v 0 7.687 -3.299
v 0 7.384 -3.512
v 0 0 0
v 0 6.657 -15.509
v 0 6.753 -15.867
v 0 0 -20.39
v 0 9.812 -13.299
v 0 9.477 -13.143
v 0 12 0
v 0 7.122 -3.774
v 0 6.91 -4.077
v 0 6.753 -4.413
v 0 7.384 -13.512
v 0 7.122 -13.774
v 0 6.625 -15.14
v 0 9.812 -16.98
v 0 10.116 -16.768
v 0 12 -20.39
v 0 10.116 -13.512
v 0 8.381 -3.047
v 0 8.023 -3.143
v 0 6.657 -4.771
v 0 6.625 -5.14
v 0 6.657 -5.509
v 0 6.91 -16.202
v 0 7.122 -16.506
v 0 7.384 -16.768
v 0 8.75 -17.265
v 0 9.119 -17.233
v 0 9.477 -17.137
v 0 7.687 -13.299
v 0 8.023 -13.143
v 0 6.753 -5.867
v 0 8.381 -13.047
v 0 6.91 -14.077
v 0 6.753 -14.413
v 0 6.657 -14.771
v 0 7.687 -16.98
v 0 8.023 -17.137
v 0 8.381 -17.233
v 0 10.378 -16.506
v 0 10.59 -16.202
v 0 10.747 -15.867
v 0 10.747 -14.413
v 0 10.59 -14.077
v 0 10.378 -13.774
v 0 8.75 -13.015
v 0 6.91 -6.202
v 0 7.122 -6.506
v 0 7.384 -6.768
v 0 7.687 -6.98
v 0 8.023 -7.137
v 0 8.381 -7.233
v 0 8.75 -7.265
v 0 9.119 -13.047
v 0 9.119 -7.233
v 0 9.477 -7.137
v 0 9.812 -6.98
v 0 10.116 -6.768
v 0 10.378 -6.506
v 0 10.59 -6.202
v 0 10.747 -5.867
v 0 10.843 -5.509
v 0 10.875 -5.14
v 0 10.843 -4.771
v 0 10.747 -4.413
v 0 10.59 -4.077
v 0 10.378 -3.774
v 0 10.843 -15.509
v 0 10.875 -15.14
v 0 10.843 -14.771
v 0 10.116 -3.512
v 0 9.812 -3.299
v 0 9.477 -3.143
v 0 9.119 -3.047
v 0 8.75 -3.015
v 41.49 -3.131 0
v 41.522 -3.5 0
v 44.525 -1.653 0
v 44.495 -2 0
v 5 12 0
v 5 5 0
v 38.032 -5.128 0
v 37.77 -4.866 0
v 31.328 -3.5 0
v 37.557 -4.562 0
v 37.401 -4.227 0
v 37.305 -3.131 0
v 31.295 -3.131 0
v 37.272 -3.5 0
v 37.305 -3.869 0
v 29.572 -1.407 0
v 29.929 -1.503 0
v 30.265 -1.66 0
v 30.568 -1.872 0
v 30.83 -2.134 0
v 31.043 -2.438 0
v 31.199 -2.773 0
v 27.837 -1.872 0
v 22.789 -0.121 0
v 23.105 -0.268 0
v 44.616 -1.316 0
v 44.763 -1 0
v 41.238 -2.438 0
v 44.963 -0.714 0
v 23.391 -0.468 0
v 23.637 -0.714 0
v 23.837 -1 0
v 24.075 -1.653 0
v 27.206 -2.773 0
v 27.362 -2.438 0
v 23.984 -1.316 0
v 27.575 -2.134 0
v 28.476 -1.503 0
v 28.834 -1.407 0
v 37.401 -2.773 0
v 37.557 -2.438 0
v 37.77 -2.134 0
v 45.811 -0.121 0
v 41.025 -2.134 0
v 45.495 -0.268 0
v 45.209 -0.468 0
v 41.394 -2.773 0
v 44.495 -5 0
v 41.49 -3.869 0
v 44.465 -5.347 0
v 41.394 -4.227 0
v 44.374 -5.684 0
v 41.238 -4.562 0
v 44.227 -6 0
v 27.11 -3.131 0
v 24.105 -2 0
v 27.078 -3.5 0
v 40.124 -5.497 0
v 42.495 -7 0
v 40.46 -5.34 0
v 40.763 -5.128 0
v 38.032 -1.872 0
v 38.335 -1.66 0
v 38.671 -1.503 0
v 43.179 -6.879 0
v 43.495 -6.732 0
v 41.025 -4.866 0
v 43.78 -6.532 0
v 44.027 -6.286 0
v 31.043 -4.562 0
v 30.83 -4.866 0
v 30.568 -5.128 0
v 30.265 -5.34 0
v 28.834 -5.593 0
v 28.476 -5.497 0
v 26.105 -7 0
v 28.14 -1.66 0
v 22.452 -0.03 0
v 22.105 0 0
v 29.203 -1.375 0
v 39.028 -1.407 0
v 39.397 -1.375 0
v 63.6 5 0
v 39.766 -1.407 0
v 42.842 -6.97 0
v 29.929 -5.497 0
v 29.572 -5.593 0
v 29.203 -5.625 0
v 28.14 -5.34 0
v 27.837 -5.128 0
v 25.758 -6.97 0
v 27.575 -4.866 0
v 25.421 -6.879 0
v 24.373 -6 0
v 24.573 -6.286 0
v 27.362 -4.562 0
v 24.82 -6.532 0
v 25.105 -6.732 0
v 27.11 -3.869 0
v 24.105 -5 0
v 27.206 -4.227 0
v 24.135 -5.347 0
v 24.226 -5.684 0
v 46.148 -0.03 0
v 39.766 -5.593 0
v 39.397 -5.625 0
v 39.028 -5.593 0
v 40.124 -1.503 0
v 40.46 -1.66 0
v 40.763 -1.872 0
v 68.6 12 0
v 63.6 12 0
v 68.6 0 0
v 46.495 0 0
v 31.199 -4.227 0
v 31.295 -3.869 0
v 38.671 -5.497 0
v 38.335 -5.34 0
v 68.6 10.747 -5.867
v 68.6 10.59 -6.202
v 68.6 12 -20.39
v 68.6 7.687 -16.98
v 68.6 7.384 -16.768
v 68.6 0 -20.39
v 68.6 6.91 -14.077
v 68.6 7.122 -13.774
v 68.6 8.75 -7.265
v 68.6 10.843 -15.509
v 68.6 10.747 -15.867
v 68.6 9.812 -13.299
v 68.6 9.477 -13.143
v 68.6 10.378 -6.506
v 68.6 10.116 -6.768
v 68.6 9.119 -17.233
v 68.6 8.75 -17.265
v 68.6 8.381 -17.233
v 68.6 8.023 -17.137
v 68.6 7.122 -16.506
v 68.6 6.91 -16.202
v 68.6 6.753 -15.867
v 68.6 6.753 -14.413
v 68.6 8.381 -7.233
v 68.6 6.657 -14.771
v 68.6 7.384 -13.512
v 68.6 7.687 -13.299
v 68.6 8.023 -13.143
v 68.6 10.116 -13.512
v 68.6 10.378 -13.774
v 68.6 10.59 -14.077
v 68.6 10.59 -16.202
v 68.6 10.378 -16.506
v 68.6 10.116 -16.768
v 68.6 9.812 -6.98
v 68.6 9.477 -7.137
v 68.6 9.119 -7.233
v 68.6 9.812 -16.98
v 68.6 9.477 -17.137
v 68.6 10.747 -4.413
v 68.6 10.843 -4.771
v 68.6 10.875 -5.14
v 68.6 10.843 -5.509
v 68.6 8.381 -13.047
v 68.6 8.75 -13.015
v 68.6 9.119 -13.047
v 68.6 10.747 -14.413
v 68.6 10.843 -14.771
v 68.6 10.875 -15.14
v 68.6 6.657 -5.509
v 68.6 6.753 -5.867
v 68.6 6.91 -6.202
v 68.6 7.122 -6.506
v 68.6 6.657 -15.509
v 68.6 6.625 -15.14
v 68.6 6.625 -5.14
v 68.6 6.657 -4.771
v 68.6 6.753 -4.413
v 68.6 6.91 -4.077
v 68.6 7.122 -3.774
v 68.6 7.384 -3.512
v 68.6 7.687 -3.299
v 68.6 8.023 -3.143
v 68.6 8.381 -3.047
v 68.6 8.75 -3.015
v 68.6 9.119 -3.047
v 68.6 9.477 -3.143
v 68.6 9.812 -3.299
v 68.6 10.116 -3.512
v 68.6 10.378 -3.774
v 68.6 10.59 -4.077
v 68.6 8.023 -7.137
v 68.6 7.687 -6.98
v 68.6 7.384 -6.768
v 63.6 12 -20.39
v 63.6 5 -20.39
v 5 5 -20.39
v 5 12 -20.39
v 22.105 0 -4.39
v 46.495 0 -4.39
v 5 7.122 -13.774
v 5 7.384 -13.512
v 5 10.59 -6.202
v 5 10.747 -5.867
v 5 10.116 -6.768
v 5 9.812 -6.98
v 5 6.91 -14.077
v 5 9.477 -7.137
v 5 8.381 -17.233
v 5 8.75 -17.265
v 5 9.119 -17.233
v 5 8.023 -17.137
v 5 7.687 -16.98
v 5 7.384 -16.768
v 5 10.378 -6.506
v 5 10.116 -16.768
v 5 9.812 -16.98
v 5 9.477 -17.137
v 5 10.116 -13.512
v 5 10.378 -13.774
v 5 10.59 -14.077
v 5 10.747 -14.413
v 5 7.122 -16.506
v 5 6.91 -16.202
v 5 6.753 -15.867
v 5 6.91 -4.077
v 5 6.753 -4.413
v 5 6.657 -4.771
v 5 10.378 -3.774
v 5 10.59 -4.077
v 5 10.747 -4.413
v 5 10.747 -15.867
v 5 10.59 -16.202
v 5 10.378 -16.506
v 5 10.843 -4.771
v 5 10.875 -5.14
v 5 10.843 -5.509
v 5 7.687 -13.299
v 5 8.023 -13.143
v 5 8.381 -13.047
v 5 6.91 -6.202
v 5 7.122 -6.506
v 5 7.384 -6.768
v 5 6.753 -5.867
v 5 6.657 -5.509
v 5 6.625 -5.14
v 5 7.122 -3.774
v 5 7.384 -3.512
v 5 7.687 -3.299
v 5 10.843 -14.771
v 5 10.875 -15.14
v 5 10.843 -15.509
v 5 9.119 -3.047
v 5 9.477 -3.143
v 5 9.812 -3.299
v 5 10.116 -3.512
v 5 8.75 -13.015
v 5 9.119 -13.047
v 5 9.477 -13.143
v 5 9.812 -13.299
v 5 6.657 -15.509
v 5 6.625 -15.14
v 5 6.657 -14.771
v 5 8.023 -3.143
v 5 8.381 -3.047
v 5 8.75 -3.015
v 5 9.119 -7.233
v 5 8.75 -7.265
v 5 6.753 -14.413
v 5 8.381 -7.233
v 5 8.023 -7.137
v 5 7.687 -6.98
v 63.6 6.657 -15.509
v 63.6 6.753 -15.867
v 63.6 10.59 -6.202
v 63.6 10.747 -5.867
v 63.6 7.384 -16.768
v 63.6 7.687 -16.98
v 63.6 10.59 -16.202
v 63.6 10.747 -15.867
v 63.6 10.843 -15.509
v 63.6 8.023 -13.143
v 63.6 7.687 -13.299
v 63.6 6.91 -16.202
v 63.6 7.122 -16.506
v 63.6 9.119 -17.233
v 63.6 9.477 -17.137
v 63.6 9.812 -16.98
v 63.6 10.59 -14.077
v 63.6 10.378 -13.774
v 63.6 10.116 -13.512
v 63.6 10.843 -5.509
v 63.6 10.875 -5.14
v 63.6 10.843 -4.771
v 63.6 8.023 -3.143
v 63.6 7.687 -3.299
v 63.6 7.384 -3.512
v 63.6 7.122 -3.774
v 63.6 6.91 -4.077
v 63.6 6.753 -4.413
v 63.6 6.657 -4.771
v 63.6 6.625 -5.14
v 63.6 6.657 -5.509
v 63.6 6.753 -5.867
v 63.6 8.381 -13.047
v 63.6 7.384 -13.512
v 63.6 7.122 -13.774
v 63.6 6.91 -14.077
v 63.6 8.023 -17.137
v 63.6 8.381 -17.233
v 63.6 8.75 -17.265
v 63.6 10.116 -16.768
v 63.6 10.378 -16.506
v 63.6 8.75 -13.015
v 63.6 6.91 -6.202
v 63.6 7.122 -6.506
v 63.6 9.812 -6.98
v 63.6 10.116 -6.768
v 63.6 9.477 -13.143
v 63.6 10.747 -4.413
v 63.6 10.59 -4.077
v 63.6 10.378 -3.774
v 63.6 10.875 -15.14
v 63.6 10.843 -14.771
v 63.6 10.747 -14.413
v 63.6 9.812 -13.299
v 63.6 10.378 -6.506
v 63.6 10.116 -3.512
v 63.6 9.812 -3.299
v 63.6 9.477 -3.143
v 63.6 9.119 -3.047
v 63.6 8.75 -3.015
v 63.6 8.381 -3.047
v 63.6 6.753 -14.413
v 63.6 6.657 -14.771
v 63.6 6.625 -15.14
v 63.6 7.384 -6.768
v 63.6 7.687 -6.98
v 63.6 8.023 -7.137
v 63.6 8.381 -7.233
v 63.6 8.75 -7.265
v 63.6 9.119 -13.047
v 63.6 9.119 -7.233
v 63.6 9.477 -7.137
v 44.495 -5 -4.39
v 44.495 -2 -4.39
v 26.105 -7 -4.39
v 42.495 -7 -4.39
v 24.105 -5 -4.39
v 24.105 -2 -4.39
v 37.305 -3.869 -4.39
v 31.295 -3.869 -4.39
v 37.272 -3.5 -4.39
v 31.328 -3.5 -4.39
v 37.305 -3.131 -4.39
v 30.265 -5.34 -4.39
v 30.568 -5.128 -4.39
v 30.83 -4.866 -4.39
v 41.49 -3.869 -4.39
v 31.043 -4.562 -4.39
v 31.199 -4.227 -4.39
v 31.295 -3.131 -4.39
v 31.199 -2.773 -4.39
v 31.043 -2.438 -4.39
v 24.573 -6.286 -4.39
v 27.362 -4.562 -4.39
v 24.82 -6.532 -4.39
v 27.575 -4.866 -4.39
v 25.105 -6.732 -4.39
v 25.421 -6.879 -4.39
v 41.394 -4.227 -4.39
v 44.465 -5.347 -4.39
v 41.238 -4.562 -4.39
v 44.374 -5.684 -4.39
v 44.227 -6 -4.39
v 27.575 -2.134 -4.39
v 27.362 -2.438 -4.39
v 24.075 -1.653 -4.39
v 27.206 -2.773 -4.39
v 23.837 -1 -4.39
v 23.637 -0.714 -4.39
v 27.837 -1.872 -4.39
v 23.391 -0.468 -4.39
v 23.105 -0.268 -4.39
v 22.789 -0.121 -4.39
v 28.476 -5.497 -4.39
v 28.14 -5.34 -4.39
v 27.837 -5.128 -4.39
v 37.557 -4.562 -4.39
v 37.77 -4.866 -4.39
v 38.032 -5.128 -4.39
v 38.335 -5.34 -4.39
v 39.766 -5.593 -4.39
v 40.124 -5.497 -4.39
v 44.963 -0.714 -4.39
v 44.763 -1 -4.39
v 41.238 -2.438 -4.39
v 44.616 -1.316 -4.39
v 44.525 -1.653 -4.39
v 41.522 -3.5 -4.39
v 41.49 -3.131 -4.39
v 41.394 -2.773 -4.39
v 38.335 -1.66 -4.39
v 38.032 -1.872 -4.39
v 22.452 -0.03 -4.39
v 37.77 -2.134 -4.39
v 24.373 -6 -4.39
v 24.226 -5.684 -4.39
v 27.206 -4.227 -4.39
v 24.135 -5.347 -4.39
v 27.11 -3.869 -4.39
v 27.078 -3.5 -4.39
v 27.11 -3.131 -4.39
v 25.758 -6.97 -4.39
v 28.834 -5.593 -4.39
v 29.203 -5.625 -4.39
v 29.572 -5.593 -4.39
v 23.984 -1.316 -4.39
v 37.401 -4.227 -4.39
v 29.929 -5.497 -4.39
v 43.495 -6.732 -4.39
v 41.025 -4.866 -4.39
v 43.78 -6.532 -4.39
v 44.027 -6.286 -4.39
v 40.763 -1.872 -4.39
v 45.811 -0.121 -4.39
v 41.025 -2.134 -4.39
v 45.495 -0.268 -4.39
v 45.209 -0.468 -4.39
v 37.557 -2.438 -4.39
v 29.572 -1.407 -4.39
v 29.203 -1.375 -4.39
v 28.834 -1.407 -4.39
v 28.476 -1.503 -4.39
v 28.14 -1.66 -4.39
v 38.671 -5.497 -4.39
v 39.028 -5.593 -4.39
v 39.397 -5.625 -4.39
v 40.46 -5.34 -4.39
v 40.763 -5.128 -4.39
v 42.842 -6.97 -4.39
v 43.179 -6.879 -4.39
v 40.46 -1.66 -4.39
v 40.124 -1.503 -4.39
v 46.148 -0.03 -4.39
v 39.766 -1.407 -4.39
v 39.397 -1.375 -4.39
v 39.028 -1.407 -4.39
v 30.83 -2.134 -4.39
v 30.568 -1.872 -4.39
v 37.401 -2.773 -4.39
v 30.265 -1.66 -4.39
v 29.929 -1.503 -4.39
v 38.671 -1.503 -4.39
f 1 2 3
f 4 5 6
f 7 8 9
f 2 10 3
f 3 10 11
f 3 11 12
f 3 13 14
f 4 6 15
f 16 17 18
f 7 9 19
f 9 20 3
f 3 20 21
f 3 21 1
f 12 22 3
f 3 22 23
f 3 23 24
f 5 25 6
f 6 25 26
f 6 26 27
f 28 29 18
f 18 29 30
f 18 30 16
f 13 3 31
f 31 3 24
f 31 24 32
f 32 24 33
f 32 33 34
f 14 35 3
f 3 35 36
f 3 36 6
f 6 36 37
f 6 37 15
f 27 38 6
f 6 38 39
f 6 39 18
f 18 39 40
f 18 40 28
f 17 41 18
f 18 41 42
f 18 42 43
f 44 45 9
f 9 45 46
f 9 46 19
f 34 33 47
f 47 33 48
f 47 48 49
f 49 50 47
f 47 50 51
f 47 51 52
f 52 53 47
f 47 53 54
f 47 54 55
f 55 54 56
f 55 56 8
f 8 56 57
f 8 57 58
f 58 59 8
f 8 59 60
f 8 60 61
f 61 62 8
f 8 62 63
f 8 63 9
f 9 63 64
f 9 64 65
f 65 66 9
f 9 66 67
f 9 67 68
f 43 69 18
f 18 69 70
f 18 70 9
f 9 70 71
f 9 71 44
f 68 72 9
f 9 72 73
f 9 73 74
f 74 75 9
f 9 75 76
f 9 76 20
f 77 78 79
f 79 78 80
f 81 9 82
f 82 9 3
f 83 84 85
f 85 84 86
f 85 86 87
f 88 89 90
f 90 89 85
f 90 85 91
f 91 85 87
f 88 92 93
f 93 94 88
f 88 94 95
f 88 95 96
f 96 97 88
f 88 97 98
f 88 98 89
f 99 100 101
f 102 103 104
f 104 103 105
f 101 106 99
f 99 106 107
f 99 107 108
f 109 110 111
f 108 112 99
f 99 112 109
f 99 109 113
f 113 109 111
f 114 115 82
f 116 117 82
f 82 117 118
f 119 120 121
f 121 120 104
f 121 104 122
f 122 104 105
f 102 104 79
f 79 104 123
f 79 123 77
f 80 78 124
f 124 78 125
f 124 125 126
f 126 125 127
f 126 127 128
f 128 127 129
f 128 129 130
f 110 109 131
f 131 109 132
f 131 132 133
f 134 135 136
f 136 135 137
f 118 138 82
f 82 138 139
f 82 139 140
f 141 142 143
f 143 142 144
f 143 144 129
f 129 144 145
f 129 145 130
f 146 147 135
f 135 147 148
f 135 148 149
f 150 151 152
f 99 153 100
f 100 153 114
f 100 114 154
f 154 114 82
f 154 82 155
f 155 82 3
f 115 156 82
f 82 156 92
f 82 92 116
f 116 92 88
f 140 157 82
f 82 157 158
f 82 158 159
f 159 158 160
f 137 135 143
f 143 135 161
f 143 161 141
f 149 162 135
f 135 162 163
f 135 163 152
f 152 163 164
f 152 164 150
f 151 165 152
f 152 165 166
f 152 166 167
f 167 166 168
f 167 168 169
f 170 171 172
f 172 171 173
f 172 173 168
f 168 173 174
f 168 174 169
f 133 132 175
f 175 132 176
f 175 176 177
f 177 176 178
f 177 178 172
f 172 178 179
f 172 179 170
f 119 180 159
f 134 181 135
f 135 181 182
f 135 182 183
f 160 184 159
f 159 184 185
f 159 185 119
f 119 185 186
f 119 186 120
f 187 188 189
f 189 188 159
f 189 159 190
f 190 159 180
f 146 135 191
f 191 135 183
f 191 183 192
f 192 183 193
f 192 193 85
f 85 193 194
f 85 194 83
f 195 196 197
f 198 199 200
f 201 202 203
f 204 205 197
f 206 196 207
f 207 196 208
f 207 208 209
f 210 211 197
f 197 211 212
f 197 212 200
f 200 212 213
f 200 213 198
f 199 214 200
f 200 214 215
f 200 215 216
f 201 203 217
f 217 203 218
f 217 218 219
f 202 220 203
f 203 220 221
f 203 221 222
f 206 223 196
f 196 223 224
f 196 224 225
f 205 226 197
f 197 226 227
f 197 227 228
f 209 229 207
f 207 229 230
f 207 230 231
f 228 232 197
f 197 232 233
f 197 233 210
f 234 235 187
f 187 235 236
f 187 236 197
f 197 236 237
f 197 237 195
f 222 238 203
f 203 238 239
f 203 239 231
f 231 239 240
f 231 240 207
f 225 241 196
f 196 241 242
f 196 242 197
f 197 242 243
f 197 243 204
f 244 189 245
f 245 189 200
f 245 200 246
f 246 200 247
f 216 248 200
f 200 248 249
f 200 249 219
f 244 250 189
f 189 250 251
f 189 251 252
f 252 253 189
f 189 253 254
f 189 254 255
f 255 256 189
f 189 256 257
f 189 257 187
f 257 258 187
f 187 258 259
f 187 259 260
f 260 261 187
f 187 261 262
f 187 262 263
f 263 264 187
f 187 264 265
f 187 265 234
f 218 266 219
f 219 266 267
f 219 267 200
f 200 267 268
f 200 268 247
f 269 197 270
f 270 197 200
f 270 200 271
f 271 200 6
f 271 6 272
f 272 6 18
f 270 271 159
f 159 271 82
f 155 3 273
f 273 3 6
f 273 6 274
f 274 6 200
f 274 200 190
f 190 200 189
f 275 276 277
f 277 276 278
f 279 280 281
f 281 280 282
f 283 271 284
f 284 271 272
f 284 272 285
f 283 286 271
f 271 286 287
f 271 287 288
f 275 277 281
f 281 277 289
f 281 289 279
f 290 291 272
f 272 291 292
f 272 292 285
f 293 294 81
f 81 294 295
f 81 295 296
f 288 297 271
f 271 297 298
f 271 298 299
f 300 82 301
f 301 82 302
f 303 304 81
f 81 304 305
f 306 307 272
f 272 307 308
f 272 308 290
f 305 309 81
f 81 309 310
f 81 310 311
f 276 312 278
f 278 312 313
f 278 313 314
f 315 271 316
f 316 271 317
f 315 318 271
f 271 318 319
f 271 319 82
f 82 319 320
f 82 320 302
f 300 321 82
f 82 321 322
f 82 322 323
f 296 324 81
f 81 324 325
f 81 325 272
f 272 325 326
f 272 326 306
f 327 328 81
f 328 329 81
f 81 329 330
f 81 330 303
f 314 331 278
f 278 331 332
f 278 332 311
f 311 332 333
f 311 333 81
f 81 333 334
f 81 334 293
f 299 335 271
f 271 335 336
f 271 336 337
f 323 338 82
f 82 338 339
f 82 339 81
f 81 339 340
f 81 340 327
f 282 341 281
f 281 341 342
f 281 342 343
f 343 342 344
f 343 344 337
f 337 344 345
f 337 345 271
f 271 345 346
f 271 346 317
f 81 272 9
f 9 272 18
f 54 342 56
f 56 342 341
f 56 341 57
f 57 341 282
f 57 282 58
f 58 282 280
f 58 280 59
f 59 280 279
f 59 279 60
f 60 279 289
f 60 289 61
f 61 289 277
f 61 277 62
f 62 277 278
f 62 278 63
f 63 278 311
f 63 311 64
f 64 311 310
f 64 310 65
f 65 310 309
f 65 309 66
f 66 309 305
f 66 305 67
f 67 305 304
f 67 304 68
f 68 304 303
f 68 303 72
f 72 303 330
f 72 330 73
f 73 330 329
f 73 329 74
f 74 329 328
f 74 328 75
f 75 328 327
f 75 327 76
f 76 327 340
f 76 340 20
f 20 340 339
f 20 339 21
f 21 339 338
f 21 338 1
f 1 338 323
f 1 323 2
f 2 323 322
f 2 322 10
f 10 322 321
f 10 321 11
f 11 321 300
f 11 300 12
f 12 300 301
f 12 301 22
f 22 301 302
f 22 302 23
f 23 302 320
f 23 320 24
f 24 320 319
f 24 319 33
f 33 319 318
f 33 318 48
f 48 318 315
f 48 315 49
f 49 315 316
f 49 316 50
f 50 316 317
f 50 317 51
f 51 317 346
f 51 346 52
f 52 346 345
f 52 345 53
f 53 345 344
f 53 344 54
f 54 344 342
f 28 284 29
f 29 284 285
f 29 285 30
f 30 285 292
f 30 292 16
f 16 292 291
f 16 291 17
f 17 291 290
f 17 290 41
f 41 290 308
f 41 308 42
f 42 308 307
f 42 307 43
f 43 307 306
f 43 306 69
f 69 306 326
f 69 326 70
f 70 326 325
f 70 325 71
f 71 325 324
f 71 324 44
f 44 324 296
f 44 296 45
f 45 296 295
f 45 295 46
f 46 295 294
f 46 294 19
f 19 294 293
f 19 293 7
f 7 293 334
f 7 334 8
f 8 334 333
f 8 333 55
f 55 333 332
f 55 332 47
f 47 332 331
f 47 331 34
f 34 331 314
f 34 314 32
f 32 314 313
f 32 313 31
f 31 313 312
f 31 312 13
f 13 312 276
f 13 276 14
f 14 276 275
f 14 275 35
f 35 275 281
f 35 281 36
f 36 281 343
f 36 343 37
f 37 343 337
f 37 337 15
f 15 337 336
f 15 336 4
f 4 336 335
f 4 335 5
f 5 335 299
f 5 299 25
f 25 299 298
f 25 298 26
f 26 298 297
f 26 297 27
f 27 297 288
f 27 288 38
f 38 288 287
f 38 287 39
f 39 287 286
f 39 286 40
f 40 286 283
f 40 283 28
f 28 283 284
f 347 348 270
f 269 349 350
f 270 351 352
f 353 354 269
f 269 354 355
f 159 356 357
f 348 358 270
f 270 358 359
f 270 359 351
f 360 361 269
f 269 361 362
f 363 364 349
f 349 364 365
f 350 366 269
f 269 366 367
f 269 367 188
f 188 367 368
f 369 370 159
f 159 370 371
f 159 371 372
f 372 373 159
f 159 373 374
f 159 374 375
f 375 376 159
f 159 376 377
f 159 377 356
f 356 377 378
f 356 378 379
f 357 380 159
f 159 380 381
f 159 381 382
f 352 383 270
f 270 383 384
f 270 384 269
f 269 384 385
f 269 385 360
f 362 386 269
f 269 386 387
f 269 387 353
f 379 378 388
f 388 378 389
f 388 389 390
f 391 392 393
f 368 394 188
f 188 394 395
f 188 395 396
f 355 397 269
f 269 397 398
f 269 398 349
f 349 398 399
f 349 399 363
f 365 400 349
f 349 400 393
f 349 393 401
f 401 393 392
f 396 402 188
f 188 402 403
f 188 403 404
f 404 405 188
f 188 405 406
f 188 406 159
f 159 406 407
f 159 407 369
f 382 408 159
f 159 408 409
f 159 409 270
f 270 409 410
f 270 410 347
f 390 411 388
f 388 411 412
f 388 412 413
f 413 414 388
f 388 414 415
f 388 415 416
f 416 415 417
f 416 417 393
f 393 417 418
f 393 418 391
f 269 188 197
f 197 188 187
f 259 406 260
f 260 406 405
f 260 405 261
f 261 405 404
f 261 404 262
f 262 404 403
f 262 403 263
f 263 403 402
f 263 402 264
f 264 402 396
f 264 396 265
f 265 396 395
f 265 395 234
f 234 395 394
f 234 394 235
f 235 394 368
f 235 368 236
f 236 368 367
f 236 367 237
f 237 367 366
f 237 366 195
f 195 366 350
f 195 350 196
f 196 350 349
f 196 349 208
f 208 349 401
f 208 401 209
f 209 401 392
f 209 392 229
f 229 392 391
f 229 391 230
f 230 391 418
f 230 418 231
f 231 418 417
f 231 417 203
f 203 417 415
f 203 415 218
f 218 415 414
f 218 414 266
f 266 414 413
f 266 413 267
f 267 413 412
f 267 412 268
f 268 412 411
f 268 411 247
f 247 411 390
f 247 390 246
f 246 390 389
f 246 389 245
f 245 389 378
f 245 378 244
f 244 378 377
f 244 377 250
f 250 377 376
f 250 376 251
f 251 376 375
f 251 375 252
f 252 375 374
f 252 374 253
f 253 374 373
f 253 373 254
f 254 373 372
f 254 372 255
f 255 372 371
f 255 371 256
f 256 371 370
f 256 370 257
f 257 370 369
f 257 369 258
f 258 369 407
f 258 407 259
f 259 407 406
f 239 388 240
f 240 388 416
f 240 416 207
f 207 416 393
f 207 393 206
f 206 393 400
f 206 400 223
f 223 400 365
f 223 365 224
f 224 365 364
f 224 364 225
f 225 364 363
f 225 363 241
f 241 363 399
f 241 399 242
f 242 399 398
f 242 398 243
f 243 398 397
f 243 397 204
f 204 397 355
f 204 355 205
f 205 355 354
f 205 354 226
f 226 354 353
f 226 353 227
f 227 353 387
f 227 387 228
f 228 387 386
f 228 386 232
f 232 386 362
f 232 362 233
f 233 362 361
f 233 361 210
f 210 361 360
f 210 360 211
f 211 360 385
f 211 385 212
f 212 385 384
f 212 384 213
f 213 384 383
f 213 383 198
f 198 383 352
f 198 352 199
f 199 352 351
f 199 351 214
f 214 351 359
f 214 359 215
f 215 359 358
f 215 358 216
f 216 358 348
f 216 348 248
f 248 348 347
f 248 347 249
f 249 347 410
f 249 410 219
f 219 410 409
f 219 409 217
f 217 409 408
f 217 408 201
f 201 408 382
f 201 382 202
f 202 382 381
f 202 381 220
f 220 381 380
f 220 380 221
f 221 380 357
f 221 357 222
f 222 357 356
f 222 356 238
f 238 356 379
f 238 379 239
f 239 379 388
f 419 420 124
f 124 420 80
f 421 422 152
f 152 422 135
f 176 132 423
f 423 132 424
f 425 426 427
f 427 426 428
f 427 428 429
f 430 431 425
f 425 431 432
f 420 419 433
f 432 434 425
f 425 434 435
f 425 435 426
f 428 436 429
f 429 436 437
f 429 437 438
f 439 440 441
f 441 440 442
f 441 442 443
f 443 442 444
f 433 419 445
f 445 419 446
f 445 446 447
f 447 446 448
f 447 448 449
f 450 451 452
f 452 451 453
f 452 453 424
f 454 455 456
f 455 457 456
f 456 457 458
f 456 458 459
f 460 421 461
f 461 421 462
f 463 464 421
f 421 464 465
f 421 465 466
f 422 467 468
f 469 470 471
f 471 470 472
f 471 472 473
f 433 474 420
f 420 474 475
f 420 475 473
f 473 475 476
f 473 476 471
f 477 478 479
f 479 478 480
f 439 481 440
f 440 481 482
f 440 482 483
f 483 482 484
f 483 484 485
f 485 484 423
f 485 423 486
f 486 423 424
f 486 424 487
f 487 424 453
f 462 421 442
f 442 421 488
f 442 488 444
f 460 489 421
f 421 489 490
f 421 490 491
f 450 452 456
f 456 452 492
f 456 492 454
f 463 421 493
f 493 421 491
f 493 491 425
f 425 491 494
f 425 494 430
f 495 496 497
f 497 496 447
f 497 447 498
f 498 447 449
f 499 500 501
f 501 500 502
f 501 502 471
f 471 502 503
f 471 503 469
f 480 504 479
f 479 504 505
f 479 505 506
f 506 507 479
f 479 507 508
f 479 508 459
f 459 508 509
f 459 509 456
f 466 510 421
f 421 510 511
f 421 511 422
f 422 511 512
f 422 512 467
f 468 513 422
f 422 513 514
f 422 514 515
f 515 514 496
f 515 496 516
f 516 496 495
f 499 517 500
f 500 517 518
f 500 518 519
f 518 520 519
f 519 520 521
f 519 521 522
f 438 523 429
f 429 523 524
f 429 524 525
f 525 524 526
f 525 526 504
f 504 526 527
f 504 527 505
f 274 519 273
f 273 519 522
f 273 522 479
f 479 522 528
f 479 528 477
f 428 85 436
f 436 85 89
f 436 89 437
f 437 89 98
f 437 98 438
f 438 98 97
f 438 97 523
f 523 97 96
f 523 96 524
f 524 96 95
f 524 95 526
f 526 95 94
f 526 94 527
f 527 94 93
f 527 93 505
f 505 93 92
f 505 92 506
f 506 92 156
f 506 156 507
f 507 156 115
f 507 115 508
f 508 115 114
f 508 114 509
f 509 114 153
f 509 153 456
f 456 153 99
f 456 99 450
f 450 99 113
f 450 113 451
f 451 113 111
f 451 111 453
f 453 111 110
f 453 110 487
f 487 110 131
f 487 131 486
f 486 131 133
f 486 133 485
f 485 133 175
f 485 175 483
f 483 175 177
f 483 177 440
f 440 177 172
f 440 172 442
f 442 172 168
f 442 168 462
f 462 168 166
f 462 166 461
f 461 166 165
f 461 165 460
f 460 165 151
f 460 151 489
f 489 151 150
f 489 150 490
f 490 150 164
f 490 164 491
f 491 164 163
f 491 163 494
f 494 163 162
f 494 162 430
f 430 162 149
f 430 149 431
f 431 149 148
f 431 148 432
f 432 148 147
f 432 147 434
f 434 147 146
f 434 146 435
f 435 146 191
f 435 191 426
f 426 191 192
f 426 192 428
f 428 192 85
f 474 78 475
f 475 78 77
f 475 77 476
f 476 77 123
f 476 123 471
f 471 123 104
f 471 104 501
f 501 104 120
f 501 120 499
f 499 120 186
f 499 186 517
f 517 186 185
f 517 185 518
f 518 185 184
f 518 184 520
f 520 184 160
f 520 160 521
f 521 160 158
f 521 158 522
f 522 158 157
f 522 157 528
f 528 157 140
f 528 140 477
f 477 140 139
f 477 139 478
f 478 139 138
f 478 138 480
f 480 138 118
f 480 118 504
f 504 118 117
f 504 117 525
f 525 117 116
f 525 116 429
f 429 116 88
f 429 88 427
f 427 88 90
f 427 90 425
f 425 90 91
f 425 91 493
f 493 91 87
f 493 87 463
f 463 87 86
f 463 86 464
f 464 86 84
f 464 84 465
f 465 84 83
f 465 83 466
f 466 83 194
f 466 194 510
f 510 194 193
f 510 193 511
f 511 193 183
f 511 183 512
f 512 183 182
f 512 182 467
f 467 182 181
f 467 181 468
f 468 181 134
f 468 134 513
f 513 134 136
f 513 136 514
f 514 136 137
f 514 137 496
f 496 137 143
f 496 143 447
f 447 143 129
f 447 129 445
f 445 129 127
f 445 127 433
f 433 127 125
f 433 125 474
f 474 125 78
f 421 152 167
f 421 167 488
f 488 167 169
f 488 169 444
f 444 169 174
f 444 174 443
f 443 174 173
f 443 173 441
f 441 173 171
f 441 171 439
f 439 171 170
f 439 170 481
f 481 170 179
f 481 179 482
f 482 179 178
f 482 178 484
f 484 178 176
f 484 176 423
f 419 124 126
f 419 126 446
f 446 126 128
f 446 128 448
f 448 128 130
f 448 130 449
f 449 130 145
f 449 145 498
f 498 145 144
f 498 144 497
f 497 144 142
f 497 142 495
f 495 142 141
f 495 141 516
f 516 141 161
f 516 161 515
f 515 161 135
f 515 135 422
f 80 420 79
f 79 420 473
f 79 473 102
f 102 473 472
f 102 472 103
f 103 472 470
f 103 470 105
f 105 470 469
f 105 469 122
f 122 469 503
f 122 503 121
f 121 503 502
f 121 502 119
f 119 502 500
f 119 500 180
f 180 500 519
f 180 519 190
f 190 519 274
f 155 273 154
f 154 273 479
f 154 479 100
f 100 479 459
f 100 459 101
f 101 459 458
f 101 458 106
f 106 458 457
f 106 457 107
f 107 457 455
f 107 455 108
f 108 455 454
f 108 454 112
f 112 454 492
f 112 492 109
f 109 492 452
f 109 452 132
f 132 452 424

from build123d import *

# Parameters (mm, degrees)
SKETCH1_W                  = 68.6
SKETCH1_H                  = 20.38979341
BRACKETBASE_DEPTH          = 5
SKETCH2_W                  = 20.38979341
SKETCH2_H                  = 12
LEGMOUNTINGTAB_DEPTH       = 5
SKETCH3_R                  = 2
LEGMOUNTINGHOLES_DEPTH     = 5
SKETCH4_W                  = 20.38979341
SKETCH4_H                  = 7
ARDUINOMOUNTINGTAB_DEPTH   = 4.38979341
SKETCH5_R                  = 2
ARDUINOMOUNTINGHOLES_DEPTH = 5
FILLET1_R                  = 2


with BuildPart() as part:
    # Sketch1 → bracketBase (new body)
    with BuildSketch(Plane(origin=(0, 0, 0), x_dir=(1, 0, 0), z_dir=(0, 1, 0))):
        with Locations((34.3, 10.194896705)):
            Rectangle(SKETCH1_W, SKETCH1_H)
    extrude(amount=BRACKETBASE_DEPTH)

    # Sketch2 → legMountingTab (add)
    with BuildSketch(Plane.ZY):
        with Locations((-10.194896705, 6)):
            Rectangle(SKETCH2_W, SKETCH2_H)
    legmountingtab = extrude(amount=-LEGMOUNTINGTAB_DEPTH)

    # Sketch3 → legMountingHoles (cut)
    with BuildSketch(Plane(origin=(5, 0, 0), x_dir=(0, 0, -1), z_dir=(1, 0, 0))):
        with Locations((15.13979341, 8.75)):
            Circle(SKETCH3_R)
        with Locations((5.13979341, 8.75)):
            Circle(SKETCH3_R)
    legmountingholes = extrude(amount=-LEGMOUNTINGHOLES_DEPTH, mode=Mode.SUBTRACT)

    # legMountingHoles2: legMountingTab, legMountingHoles across plane
    add(legmountingtab.mirror(Plane.ZY.offset(-34.3)))
    add(legmountingholes.mirror(Plane.ZY.offset(-34.3)), mode=Mode.SUBTRACT)

    # Sketch4 → arduinoMountingTab (add)
    with BuildSketch(Plane.XY):
        with Locations((34.3, -3.5)):
            Rectangle(SKETCH4_W, SKETCH4_H)
    extrude(amount=-ARDUINOMOUNTINGTAB_DEPTH)

    # Sketch5 → arduinoMountingHoles (cut)
    with BuildSketch(Plane.XY):
        with Locations((39.397448352, -3.5)):
            Circle(SKETCH5_R)
        with Locations(Location((29.202551647, -3.5, 0), (0, 0, 180))):
            Circle(SKETCH5_R)
    extrude(amount=-ARDUINOMOUNTINGHOLES_DEPTH, mode=Mode.SUBTRACT)

    # Fillet1
    fillet1_edges = [part.edges().sort_by_distance(p)[0] for p in [
        (44.494896705, 0, -2.194896705),
        (44.494896705, -7, -2.194896705),
        (24.105103295, -7, -2.194896705),
        (24.105103295, 0, -2.194896705),
    ]]
    fillet(fillet1_edges, radius=FILLET1_R)


solid = part.part
